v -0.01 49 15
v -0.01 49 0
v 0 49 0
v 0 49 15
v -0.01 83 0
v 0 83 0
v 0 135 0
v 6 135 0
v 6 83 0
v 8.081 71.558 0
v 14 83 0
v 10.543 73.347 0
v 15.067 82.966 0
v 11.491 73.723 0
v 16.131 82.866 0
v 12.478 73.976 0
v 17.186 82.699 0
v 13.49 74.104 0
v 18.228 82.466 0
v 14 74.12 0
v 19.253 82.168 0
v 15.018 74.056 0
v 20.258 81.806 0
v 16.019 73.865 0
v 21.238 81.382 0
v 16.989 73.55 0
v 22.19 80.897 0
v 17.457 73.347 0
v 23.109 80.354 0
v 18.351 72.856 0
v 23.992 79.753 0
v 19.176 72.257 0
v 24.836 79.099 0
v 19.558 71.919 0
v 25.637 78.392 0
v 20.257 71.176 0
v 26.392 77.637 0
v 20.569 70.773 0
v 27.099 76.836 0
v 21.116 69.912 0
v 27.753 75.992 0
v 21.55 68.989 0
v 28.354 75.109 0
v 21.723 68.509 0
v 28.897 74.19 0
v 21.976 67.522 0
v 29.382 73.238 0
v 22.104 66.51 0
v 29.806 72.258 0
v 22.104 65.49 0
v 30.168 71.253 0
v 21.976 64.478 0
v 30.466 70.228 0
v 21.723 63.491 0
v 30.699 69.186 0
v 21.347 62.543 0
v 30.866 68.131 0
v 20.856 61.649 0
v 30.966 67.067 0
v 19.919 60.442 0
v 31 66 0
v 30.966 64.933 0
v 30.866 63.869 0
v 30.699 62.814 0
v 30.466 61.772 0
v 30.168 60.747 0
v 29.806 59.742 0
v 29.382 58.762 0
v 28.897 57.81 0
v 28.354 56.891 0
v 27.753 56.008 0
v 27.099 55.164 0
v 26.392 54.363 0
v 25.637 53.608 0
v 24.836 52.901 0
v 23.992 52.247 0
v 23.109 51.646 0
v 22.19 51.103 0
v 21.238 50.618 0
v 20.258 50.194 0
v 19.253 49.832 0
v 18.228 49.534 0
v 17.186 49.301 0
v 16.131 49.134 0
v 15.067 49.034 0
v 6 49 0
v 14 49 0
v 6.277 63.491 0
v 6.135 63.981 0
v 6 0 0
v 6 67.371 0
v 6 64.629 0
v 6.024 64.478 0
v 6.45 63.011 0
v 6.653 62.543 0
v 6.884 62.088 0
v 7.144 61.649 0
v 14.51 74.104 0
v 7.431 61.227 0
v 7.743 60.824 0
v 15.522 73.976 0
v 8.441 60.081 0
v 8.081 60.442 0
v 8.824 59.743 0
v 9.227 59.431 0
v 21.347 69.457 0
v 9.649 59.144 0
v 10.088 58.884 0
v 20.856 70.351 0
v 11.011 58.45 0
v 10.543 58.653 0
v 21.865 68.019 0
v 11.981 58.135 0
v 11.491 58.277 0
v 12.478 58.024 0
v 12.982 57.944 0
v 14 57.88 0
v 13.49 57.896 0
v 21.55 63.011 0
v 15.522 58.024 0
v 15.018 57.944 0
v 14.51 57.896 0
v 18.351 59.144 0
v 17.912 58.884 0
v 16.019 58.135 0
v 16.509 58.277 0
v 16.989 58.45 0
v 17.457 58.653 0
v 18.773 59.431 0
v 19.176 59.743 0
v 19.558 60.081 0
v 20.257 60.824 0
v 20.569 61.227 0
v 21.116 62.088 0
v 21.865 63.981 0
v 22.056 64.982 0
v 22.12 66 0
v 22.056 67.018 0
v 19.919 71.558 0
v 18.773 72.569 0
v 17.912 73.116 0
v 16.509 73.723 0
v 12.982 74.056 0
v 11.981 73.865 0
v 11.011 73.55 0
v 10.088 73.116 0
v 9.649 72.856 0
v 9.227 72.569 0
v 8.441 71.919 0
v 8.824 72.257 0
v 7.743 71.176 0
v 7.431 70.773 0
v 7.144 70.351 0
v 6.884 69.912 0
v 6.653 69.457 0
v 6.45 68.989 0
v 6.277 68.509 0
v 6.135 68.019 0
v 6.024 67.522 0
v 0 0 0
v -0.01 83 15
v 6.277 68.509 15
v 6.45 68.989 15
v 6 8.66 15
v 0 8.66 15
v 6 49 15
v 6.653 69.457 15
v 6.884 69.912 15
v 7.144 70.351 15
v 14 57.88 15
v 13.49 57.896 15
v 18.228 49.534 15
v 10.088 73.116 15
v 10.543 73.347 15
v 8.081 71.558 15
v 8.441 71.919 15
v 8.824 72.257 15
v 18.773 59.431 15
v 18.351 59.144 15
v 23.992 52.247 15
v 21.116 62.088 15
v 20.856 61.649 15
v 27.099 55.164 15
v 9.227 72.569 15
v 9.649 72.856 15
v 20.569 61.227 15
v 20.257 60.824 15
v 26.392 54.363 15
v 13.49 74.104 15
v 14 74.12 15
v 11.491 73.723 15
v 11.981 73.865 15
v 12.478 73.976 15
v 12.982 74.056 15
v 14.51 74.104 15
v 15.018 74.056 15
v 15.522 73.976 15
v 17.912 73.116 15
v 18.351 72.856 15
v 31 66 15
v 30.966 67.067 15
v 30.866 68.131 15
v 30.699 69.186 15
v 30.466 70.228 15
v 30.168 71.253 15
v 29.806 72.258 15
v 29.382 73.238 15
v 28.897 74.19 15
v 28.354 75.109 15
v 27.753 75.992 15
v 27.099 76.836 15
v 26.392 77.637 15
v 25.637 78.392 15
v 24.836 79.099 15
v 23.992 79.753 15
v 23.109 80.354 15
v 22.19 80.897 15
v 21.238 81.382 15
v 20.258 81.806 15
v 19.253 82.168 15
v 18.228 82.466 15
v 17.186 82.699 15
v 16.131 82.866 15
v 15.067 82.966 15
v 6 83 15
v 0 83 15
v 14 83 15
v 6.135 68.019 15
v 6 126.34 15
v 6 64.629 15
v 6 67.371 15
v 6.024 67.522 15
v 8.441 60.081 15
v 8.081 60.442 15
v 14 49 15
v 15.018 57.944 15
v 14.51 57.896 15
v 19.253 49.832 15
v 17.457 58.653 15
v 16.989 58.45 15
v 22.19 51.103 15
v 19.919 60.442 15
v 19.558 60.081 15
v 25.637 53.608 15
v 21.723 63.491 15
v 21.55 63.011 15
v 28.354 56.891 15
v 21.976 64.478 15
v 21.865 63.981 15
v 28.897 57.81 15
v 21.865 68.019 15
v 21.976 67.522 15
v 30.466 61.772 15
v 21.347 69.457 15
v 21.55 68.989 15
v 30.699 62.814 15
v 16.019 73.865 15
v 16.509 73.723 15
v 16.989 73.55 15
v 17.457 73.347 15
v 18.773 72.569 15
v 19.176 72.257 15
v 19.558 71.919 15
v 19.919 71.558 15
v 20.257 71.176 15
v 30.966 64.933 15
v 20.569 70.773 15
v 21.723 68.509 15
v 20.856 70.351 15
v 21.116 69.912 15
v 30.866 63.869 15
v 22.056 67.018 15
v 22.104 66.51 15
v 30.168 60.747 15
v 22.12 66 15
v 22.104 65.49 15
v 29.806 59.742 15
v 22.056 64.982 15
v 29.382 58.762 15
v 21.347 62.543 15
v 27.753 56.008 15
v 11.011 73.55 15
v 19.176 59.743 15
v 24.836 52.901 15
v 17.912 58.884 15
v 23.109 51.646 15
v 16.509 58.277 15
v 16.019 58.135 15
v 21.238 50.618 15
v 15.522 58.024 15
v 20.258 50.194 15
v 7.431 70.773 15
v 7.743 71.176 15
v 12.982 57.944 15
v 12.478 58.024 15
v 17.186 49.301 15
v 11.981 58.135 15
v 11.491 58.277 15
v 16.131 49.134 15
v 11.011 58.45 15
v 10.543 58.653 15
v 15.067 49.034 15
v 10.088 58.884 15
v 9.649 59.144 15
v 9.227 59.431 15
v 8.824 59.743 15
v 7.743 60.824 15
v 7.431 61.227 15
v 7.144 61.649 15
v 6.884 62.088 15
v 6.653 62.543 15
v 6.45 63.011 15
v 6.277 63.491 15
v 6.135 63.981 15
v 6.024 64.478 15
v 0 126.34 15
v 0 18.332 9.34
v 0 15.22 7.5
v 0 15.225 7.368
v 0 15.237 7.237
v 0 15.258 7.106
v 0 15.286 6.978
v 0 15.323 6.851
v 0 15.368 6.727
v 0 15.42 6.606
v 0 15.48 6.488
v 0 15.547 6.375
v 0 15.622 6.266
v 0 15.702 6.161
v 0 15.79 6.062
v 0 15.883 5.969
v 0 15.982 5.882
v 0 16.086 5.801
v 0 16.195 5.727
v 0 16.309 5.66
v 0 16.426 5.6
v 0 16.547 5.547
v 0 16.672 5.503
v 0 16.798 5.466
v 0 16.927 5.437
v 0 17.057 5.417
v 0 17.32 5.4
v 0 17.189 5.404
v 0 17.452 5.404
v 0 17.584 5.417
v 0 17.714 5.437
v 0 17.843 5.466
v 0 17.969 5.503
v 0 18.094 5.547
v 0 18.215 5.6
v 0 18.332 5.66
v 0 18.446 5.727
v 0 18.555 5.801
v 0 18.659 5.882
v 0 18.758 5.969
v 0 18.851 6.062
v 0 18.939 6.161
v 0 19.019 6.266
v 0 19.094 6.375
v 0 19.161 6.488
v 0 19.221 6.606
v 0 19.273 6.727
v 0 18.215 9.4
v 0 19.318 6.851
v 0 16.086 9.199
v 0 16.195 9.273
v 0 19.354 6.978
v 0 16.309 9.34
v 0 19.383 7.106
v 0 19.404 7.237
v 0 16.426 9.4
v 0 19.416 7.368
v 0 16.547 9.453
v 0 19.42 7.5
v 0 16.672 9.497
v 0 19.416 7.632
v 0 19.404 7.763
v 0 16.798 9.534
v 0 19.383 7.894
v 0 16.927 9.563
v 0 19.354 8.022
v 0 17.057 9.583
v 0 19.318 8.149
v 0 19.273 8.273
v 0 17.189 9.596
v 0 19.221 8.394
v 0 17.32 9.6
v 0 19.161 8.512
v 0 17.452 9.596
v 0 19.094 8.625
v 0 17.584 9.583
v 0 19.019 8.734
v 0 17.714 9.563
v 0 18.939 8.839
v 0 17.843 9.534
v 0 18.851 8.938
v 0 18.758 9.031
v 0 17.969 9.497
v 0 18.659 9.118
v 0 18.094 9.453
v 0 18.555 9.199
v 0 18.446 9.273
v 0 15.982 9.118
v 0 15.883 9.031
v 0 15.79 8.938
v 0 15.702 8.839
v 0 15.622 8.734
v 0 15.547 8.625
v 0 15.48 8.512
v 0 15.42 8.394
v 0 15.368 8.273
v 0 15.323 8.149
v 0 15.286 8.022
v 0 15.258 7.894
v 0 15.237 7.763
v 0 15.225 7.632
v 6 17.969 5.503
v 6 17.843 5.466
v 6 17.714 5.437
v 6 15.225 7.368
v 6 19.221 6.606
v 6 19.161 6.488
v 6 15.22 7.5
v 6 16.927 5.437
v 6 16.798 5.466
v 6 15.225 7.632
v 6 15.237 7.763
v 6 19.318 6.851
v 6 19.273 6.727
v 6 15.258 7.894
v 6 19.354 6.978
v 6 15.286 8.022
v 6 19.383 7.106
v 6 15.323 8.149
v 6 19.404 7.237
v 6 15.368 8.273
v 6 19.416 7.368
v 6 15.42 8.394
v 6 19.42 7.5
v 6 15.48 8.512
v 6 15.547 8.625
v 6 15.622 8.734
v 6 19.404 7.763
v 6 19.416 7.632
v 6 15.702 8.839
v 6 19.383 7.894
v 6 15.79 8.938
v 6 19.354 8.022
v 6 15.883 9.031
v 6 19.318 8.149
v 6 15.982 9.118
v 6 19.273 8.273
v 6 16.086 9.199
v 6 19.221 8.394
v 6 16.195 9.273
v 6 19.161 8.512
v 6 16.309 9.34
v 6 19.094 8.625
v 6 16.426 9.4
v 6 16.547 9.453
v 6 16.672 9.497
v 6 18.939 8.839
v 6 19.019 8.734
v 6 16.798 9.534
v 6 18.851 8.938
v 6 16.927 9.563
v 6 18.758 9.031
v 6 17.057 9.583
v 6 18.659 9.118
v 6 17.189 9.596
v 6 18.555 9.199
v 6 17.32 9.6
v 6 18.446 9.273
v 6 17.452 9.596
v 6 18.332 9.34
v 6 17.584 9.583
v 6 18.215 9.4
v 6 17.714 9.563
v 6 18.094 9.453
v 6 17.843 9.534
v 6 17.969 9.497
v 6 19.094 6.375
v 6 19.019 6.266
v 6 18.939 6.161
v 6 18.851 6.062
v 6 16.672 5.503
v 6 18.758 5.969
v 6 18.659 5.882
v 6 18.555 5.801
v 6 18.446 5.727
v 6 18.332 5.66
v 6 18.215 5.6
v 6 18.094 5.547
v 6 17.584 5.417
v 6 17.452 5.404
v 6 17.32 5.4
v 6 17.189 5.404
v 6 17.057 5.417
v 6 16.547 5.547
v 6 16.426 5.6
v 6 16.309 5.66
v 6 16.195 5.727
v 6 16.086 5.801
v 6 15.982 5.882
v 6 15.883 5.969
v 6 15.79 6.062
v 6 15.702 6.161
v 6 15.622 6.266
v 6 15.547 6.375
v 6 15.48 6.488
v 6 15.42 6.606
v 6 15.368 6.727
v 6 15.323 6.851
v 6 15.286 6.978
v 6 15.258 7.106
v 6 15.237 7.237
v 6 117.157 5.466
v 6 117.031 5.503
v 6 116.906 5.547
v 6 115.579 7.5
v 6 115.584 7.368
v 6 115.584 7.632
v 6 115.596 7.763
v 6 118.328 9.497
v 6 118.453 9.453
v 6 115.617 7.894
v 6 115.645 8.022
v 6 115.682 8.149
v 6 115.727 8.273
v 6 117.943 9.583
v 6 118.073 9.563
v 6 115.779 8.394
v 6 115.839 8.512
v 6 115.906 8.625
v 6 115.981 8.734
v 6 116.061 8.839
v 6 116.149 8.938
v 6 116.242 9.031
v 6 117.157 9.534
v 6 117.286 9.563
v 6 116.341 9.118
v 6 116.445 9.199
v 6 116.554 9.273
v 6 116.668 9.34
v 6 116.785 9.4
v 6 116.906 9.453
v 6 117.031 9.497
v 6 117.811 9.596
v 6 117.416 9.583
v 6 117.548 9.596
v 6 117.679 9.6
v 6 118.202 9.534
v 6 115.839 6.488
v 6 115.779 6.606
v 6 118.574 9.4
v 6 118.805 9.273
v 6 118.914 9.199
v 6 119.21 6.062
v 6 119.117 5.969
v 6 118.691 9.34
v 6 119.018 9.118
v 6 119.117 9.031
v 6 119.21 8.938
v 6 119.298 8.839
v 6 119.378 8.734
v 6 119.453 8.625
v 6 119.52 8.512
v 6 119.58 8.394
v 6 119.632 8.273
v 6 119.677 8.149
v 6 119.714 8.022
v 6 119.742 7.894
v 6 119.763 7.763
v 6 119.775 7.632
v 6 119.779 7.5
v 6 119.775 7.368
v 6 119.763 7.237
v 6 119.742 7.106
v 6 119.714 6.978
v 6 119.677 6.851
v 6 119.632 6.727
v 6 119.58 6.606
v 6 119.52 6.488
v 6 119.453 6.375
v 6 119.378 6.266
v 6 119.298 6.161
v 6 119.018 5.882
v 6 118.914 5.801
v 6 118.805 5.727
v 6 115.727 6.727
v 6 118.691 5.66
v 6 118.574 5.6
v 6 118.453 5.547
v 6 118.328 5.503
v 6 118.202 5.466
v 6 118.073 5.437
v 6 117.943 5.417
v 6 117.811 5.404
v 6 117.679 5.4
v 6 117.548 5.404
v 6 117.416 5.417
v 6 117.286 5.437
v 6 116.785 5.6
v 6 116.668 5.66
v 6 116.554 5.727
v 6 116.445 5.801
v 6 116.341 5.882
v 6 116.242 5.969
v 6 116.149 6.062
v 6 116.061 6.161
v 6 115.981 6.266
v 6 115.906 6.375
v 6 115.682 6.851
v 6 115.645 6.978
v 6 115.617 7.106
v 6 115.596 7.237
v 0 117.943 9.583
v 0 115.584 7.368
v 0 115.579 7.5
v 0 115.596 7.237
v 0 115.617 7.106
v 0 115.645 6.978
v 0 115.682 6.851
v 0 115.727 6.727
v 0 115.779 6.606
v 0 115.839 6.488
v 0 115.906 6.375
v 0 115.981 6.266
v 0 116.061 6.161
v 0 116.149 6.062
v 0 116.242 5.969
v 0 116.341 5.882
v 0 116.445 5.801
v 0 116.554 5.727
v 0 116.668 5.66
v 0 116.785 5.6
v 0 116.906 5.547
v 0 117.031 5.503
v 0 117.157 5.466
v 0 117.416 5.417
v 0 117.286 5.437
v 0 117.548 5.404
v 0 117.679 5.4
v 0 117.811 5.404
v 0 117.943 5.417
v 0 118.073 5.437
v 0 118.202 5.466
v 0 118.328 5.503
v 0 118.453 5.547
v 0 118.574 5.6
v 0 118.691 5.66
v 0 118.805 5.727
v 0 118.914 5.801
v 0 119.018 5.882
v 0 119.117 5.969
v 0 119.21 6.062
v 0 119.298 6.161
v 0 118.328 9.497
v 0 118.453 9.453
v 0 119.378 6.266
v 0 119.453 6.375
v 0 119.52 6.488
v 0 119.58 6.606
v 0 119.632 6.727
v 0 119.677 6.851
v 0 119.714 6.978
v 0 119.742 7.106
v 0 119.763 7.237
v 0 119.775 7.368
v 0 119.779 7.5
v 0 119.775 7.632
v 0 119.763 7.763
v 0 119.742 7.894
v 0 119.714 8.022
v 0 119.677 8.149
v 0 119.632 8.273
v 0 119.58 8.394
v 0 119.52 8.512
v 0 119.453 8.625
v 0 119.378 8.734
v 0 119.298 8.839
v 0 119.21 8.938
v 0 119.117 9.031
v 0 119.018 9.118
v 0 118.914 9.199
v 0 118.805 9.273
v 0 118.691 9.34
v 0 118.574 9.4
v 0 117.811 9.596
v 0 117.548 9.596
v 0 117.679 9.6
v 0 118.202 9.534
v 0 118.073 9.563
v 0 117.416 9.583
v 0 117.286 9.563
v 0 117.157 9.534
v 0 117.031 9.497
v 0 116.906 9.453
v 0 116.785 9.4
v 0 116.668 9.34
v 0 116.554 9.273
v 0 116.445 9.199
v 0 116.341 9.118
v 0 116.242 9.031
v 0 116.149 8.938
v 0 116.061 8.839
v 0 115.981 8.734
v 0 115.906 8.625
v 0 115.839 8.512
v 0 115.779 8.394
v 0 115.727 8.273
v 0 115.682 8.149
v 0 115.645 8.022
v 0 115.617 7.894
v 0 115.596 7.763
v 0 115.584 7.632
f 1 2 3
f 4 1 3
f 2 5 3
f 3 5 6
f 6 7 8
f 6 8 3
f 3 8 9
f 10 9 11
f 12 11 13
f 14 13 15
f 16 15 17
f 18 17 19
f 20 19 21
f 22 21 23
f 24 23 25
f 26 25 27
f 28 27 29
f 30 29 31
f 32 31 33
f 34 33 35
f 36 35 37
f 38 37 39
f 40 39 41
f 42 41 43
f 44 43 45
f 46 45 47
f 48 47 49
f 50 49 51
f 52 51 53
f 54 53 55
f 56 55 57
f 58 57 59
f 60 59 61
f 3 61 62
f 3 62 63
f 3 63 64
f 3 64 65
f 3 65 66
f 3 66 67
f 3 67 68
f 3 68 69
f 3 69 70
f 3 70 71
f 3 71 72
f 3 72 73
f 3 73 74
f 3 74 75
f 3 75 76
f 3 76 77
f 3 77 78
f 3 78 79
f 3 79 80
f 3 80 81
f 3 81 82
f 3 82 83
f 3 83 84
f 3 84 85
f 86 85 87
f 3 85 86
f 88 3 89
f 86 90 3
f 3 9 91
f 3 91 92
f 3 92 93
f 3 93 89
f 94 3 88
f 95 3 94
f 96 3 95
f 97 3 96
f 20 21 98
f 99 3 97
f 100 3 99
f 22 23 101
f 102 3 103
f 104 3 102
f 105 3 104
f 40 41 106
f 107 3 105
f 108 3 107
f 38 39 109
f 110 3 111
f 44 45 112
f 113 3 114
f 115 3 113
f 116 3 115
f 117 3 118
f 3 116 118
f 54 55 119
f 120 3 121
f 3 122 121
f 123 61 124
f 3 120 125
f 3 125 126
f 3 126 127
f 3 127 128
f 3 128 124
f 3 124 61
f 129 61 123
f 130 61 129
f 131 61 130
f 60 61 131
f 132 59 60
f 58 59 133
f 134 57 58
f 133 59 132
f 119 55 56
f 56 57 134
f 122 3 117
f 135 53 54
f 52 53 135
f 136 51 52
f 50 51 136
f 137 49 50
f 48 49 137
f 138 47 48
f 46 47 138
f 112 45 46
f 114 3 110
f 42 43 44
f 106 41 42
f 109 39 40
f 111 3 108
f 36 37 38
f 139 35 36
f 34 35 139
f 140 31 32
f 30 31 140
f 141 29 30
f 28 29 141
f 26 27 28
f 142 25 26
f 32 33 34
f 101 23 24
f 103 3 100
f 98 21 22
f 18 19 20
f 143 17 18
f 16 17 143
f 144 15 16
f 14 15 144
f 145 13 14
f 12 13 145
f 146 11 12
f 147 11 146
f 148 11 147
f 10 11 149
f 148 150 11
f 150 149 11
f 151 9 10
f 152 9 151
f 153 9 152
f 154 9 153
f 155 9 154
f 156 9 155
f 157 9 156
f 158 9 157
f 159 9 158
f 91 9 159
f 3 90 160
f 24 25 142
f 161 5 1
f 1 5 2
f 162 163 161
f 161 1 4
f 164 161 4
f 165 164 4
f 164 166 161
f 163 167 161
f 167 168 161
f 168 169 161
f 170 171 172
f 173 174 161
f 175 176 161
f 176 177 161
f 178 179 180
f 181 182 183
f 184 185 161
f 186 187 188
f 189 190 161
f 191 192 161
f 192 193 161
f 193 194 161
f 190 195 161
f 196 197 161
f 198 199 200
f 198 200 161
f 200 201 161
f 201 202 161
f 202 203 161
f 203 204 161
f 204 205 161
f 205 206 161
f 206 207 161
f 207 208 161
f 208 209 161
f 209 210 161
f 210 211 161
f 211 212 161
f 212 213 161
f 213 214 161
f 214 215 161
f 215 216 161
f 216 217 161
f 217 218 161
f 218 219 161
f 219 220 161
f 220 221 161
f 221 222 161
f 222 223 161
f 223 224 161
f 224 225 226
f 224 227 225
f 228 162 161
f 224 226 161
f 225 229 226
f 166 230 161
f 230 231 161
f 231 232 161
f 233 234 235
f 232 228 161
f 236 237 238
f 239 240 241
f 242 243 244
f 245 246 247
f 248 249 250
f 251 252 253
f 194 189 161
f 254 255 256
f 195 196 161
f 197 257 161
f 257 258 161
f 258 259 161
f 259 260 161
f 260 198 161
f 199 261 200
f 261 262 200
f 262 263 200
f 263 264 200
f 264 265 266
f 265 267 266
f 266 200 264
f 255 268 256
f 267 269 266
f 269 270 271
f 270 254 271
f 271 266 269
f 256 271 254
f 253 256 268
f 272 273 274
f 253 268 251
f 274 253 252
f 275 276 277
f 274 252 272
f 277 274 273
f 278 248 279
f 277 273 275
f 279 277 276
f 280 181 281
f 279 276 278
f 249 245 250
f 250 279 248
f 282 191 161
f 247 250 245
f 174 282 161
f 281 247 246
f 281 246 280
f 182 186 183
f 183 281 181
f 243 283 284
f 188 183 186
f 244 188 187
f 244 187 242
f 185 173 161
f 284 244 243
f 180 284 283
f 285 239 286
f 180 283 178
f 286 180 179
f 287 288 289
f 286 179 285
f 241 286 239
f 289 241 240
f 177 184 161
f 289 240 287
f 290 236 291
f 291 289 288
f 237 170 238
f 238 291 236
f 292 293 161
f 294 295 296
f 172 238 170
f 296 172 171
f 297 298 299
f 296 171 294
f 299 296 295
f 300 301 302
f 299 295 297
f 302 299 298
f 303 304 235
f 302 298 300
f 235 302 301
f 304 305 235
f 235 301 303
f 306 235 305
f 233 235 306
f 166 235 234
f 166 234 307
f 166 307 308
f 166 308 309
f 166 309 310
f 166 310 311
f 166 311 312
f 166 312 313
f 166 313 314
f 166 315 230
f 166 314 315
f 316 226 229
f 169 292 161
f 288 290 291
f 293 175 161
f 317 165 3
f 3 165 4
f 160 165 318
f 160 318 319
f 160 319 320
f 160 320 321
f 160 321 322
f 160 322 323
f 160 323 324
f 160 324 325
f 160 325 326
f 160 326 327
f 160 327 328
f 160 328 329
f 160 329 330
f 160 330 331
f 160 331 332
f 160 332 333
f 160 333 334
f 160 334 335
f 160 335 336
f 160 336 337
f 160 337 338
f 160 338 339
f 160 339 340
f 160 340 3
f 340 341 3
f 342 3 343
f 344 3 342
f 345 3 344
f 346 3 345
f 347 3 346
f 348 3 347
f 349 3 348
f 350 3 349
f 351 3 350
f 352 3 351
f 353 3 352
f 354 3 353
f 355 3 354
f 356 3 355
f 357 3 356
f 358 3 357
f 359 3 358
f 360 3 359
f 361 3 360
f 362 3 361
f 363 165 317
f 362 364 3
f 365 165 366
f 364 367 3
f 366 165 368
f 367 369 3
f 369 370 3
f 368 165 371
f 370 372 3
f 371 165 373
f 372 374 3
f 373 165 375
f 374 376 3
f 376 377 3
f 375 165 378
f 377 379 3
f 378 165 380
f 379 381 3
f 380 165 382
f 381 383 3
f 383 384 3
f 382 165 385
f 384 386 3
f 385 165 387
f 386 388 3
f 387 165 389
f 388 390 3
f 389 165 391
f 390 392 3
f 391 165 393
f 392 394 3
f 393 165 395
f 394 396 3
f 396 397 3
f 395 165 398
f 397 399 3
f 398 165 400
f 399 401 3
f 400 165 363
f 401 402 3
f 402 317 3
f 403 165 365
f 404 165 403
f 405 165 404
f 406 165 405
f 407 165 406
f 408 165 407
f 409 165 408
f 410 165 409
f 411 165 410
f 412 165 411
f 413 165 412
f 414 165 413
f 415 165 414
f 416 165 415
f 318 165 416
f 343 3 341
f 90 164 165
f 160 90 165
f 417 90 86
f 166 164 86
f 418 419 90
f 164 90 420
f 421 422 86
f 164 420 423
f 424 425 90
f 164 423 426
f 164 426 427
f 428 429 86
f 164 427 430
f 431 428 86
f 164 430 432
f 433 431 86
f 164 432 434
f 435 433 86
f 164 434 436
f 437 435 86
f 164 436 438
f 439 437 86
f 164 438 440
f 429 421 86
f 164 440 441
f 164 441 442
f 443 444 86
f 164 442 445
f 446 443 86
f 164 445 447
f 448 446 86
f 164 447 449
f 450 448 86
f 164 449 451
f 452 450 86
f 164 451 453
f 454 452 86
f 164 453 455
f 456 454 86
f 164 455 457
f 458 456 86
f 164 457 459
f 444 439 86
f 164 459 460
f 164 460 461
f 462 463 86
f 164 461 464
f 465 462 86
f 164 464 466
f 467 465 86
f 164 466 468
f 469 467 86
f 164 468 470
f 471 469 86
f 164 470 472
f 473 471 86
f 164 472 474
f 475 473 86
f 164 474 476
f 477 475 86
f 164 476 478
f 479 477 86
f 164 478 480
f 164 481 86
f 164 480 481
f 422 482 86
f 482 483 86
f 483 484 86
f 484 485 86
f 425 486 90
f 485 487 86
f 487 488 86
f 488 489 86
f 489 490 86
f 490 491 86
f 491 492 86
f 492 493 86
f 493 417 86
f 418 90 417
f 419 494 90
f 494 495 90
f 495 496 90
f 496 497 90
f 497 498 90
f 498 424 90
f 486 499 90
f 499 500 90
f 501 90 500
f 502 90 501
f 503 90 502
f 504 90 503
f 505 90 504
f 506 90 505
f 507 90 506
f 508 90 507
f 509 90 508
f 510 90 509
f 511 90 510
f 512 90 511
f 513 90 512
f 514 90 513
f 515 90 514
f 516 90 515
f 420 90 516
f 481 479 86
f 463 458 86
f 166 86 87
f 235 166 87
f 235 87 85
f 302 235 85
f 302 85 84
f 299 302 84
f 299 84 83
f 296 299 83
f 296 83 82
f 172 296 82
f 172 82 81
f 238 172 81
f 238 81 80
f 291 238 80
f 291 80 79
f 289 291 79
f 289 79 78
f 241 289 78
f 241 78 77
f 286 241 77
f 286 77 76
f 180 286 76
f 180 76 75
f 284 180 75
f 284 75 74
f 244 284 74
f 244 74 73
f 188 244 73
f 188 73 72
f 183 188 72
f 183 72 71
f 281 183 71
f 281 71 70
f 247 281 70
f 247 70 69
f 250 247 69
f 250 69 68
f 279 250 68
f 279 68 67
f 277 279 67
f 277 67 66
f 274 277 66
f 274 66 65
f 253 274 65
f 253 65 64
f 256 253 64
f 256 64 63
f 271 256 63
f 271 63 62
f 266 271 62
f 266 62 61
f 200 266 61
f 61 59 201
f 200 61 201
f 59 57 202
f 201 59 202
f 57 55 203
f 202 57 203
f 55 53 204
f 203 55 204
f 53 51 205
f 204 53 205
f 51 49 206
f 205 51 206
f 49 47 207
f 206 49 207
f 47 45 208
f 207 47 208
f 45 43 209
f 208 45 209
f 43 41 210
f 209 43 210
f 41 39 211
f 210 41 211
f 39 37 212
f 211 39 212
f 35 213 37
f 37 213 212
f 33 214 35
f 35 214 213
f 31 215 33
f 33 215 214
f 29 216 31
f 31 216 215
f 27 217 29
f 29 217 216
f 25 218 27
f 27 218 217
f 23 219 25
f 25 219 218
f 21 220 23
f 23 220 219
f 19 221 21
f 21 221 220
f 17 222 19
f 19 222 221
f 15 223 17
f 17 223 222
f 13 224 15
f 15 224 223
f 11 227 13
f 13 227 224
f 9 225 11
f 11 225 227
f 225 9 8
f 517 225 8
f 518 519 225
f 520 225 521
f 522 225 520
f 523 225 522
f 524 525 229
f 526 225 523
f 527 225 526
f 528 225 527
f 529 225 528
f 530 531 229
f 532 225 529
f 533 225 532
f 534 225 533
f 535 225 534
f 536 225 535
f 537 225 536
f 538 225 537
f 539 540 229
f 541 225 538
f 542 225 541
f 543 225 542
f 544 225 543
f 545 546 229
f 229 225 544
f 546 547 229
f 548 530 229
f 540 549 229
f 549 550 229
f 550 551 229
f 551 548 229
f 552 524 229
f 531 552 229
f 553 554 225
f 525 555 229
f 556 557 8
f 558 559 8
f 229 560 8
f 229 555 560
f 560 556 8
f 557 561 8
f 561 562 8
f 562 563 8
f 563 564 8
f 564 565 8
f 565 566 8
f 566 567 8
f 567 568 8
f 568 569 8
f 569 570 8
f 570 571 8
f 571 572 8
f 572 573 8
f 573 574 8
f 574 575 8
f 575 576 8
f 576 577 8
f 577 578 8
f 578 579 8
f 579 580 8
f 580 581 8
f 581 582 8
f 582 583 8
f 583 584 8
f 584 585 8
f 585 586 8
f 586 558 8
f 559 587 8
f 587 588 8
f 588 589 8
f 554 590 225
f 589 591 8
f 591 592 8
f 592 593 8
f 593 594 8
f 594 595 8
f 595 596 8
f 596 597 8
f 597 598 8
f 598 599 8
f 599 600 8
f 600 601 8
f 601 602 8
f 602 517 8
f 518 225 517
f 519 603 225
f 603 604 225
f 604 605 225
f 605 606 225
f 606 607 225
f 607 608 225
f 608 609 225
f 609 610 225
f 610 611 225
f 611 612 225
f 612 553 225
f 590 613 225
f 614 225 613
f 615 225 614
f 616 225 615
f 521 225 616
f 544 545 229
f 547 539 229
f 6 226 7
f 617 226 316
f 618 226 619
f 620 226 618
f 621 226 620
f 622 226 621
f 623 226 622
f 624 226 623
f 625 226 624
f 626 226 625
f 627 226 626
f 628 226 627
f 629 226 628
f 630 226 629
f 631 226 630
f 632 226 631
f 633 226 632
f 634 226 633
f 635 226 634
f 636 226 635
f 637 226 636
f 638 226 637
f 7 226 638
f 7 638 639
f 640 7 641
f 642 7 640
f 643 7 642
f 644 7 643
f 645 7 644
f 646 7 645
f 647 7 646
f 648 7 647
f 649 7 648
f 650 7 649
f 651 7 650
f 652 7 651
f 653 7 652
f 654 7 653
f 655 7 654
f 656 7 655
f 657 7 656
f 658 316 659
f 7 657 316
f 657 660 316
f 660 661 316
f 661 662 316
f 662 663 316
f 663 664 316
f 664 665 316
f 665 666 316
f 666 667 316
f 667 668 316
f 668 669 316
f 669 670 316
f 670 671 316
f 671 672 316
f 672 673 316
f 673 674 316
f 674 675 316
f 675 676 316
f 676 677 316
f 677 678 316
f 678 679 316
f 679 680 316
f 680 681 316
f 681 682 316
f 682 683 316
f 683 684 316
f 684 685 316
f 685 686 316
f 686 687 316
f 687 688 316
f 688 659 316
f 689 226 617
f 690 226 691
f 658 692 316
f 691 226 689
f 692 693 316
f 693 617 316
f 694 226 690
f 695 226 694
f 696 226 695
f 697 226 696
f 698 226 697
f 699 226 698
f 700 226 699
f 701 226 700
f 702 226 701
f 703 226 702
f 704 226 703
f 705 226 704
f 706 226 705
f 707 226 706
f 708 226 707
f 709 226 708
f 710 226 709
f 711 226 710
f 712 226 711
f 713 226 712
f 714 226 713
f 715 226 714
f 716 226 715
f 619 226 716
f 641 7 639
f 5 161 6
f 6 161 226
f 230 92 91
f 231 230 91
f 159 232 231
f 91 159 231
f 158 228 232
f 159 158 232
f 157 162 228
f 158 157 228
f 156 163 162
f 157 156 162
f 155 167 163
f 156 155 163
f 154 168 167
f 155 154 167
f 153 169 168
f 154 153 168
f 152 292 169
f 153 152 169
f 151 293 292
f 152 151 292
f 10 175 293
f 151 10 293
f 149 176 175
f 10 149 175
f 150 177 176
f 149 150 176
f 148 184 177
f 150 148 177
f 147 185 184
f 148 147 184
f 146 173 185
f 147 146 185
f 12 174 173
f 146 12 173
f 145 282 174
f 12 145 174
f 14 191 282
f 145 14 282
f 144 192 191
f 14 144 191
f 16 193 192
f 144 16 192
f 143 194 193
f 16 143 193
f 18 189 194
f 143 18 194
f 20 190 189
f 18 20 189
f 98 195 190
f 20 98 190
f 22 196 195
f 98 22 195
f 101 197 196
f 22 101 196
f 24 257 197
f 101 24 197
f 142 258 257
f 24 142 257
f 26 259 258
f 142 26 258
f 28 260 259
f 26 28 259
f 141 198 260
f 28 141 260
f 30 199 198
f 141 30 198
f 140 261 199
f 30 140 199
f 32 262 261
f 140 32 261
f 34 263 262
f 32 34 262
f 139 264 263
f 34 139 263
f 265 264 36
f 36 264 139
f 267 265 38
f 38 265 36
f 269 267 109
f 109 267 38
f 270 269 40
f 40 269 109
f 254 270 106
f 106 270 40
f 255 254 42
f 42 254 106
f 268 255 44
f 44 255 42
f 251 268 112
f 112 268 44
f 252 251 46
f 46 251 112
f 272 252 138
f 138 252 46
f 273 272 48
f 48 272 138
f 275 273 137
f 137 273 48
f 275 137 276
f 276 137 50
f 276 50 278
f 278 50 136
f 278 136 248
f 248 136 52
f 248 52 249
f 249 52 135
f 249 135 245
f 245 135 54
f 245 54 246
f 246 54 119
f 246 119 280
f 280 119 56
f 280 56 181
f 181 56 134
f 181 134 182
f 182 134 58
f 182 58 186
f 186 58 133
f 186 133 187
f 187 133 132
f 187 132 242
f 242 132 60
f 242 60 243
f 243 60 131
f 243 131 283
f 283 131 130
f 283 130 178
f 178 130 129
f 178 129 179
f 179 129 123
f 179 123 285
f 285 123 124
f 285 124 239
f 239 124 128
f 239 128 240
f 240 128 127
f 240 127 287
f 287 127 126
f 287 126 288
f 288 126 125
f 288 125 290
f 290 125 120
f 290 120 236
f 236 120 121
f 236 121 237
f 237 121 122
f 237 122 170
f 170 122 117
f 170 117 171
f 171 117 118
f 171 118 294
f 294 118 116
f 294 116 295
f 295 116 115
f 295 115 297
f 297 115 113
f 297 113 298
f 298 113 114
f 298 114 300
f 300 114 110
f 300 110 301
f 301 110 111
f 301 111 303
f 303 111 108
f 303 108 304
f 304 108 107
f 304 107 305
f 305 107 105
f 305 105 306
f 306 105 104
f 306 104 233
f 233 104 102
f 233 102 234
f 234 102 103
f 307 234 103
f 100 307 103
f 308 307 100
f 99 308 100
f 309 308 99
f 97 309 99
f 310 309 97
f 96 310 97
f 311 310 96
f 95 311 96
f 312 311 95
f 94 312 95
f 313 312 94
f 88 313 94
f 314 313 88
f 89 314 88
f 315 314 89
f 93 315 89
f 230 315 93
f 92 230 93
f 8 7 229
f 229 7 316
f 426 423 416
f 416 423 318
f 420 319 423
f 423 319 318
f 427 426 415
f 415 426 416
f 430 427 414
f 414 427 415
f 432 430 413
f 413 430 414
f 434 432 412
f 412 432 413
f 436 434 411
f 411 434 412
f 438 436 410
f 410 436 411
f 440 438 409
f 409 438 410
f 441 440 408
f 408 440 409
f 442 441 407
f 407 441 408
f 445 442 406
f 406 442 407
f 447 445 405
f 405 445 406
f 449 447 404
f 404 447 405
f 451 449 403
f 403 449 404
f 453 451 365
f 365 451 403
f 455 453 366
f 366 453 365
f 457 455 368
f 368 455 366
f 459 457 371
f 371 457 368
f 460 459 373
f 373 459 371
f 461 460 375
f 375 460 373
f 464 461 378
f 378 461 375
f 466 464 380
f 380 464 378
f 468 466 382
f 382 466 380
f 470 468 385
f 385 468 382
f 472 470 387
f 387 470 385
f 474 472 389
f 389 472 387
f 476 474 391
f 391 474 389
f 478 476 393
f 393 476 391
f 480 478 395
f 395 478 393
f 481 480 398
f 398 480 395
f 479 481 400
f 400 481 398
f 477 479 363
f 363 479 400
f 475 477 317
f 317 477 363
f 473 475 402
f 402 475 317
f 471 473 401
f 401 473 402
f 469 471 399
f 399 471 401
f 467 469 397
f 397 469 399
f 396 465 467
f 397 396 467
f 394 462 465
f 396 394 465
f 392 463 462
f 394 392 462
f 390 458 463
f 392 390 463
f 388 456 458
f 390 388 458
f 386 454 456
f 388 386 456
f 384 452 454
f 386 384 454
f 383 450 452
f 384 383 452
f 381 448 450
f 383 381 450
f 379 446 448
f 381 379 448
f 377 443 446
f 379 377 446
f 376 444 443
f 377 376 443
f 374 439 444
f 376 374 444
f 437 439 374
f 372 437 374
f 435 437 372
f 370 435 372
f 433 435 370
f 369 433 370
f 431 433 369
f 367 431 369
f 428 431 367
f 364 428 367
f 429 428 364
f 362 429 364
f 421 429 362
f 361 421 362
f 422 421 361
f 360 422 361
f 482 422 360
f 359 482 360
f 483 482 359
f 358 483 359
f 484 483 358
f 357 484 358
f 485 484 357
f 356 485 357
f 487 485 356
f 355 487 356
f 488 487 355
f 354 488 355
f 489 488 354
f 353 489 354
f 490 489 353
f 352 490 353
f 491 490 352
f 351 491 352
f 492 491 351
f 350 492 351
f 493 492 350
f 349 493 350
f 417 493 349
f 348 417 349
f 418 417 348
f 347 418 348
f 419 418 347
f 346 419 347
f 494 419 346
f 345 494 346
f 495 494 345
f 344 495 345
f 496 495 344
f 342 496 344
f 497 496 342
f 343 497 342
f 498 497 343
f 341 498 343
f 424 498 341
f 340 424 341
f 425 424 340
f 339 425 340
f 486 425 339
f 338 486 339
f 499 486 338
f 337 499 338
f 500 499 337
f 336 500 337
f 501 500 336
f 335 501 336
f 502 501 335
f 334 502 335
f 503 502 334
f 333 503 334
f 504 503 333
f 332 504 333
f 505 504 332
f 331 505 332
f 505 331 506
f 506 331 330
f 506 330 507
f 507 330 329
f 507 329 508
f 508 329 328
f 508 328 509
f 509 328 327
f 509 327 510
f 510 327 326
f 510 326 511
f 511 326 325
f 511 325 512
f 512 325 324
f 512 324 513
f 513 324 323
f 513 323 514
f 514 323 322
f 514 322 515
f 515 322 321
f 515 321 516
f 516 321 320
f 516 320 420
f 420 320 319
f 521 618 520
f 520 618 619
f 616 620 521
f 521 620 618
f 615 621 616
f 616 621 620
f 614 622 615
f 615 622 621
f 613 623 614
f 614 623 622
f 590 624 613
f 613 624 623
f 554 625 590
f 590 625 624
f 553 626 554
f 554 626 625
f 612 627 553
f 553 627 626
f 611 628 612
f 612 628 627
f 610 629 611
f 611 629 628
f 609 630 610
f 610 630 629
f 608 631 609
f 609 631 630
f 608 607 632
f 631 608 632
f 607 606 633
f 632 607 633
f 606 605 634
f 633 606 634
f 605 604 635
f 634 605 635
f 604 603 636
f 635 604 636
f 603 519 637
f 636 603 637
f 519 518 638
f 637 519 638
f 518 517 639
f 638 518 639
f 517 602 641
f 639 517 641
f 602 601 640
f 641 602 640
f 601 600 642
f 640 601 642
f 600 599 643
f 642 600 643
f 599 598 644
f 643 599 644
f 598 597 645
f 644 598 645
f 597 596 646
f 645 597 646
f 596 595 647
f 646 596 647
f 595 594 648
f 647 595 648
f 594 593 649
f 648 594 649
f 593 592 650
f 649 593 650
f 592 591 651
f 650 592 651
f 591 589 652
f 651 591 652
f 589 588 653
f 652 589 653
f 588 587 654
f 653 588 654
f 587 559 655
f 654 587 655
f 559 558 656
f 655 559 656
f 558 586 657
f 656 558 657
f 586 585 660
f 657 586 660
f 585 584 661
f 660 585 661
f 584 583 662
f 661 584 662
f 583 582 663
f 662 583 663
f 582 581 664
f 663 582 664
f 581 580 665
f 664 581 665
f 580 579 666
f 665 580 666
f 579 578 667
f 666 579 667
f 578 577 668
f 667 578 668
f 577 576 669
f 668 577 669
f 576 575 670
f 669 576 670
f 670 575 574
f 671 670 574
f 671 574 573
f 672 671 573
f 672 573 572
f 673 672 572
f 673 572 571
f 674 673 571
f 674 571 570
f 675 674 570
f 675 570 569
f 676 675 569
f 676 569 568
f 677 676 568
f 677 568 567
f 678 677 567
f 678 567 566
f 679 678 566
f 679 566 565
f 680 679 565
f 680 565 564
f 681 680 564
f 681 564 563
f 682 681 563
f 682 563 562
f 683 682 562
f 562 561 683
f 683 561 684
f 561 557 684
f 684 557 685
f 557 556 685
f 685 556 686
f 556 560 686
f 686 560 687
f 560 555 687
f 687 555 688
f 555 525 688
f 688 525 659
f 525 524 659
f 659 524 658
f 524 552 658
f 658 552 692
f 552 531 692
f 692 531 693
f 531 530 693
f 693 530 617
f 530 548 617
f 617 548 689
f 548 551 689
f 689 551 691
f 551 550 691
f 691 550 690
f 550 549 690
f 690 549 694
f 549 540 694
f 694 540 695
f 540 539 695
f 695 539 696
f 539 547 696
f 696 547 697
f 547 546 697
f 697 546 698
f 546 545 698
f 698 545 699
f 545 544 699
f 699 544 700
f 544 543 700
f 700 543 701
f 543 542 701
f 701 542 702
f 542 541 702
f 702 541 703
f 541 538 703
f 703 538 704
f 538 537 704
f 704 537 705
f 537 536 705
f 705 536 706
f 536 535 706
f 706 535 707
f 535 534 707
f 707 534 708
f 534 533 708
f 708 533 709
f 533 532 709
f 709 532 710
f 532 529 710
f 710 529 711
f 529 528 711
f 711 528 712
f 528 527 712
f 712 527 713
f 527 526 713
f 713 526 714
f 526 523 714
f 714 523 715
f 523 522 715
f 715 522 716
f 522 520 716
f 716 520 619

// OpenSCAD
// file: functions.scad
// PRUSA Mendel  
// Functions used in many files
// GNU GPL v2
// Josef Průša
// josefprusa@me.com
// prusadjs.cz
// http://www.reprap.org/wiki/Prusa_Mendel
// http://github.com/prusajr/PrusaMendel

module nut(d,h,horizontal=true){
cornerdiameter =  (d / 2) / cos (180 / 6);
cylinder(h = h, r = cornerdiameter, $fn = 6);
if(horizontal){
for(i = [1:6]){
	rotate([0,0,60*i]) translate([-cornerdiameter-0.2,0,0]) rotate([0,0,-45]) cube(size = [2,2,h]);
}}
}

// By nophead
module polyhole(d,h) {
    n = max(round(2 * d),3);
    rotate([0,0,180])
        cylinder(h = h, r = (d / 2) / cos (180 / n), $fn = n);
}

module roundcorner(diameter){
	difference(){
		cube(size = [diameter,diameter,99], center = false);
		translate(v = [diameter, diameter, 0]) cylinder(h = 100, r=diameter, center=true);
	}
}
// file: metric.scad
// PRUSA Mendel  
// Default metric sizes
// GNU GPL v2
// Josef Průša
// josefprusa@me.com
// prusadjs.cz
// http://www.reprap.org/wiki/Prusa_Mendel
// http://github.com/prusajr/PrusaMendel

// DONT CHANGE THIS FILE! ALTER VALUES IN CONFIGURATION.SCAD INSTEAD

// RODS

threaded_rod_diameter = 8;
threaded_rod_diameter_horizontal = 8;
smooth_bar_diameter = 8;
smooth_bar_diameter_horizontal = 8;

// Nuts and bolts

m8_diameter = 8;
m8_nut_diameter = 14.5;

m4_diameter = 4;
m4_nut_diameter = 7.5;

m3_diameter = 3;
m3_nut_diameter = 5;

// Bushing holder

bushing_core_diameter = smooth_bar_diameter;
bushing_material_thickness = 1;

// Motors

motor_shaft = 5.1;
// file: z-lead-screw-support-retainer.scad
// f. beachler
// longevity software d.b.a. terawatt industries

zleads_bushing_retainer();

module zleads_bushing_retainer() {
	difference() {
		minkowski() {
			union() {
				cube([9 - 3, 35 - 3, 3]);
				translate([6 / 2, 32 / 2, 0]) cylinder(r = 9, h = 3);
			}
			cylinder(r = 3, h = 0.01);
		}
		// slots
		translate([(6 - 3.5) / 2, 25, -0.1]) cube([3 + 0.5, 10, 5 + 1]);
		translate([(6 - 3.5) / 2, -3, -0.1]) cube([3 + 0.5, 10, 5 + 1]);
		translate([6 / 2, 32 / 2, -0.1]) cylinder(r = 5.75, h = 5 + 1);
	}
}
// file: configuration.scad
// PRUSA Mendel  
// Configuration file
// GNU GPL v2
// Josef Průša
// josefprusa@me.com
// prusadjs.cz
// http://www.reprap.org/wiki/Prusa_Mendel
// http://github.com/prusajr/PrusaMendel

// PLEASE SELECT ONE OF THE CONFIGURATIONS BELOW
// BY UN-COMMENTING IT

// Uncomment for metric settings
// METRIC METRIC METRIC METRIC METRIC METRIC METRIC METRIC 

include <metric.scad>;

// Uncomment for imperial settings
// IMPERIAL IMPERIAL IMPERIAL IMPERIAL IMPERIAL IMPERIAL IMPERIAL 

//include <sae.scad>;

//thin_wall = 3;
// LM8UU
//linear = false;

// override settings by customizing below
// CUSTOM CUSTOM CUSTOM CUSTOM CUSTOM CUSTOM CUSTOM CUSTOM CUSTOM

threaded_rod_diameter = 8.2;
threaded_rod_diameter_horizontal = 8.2;
smooth_bar_diameter = 8.3;
smooth_bar_diameter_horizontal = 8.3;

// Nuts and bolts

m8_diameter = 8.3;
m8_nut_diameter = 15;

m4_diameter = 4.2;
m4_nut_diameter = 9;

m3_diameter = 3.3;
m3_nut_diameter = 5.8;

///counted stuff
m3_nut_diameter_bigger = ((m3_nut_diameter  / 2) / cos (180 / 6))*2;

// functions 
include <functions.scad>
// main file
// C. Strang original SCAD from Prism sketchup design file
// f beachler AB mods for bushing and retainer
// longevity software d.b.a. terawatt industries


include <configuration.scad>;
// FIXME use or remove from this project
use <z-lead-screw-support-retainer.scad>;

width = 135;			// end-to-end width at corners
h = 6;   			// base thickness
o = 0.01;			//  overlap amount
st=2;				// slot tab depth
bushing_dia = 15.79 + 0.45;
m = m4_diameter;

$fn=100;

translate([0,0,0]) zleads_upper(width, h, st, m, bushing_dia);

module zleads_upper(w = width, zlh = h, zls = st, zlm = m, bd = bushing_dia)
{
	translate([0, w / 2 - 34, 0]) bearingholder(bd);
	base(w, zlh, zls, zlm);
}

module base(w, bh, bs, bm)
{
	difference()
	{
		union()
		{
			translate([0,0,0]) cube([bh, w, 15]);
//			translate([0, w - w/ 2, 0]) cube([bh, w / 3, 15]);
//			translate([-bs+o, w / 2 - 41, 7.5]) cube([bs+2*o, 41, 5]);
		}
		// side cuts
		translate([-o, 0, 0]) rotate([60, 0, 0]) cube([bh + 2 * o, 50, 20]);
		translate([-o, w - 50 * sin(30), 50 * cos(30)]) rotate([-60, 0, 0]) cube([bh + 2 * o, 50, 20]);
		// screw holes
		translate([-o, 20 * cos(30), 15 / 2]) rotate([0,90,0]) cylinder(r=bm/2,h=bh+2*o);
		translate([-o, w - 20 * cos(30), 15 / 2]) rotate([0,90,0]) cylinder(r=bm/2,h=bh+2*o);
	}
}

module bearingholder(bd)
{
	difference()
	{
		union()
		{
			translate([-6,15.5,0]) cube([20, 34, 15]);
			translate([14,32.5,0]) cylinder(r=34 / 2, h=15);
		}
		// remove overhang
		translate([-22.01, 15, -1]) cube([22, 36, 30]);
		// bushing holes
		translate([14, 32.5, -o]) cylinder(r = bd / 2, h = 25 + 2 * o);
		// bushing retainer holes
/*		translate([14, 20 , -o]) cylinder(r = m3_diameter/2, h = 25 + 2*o);
		translate([14, 45 , -o]) cylinder(r = m3_diameter/2, h = 25 + 2*o); */
	}

}
